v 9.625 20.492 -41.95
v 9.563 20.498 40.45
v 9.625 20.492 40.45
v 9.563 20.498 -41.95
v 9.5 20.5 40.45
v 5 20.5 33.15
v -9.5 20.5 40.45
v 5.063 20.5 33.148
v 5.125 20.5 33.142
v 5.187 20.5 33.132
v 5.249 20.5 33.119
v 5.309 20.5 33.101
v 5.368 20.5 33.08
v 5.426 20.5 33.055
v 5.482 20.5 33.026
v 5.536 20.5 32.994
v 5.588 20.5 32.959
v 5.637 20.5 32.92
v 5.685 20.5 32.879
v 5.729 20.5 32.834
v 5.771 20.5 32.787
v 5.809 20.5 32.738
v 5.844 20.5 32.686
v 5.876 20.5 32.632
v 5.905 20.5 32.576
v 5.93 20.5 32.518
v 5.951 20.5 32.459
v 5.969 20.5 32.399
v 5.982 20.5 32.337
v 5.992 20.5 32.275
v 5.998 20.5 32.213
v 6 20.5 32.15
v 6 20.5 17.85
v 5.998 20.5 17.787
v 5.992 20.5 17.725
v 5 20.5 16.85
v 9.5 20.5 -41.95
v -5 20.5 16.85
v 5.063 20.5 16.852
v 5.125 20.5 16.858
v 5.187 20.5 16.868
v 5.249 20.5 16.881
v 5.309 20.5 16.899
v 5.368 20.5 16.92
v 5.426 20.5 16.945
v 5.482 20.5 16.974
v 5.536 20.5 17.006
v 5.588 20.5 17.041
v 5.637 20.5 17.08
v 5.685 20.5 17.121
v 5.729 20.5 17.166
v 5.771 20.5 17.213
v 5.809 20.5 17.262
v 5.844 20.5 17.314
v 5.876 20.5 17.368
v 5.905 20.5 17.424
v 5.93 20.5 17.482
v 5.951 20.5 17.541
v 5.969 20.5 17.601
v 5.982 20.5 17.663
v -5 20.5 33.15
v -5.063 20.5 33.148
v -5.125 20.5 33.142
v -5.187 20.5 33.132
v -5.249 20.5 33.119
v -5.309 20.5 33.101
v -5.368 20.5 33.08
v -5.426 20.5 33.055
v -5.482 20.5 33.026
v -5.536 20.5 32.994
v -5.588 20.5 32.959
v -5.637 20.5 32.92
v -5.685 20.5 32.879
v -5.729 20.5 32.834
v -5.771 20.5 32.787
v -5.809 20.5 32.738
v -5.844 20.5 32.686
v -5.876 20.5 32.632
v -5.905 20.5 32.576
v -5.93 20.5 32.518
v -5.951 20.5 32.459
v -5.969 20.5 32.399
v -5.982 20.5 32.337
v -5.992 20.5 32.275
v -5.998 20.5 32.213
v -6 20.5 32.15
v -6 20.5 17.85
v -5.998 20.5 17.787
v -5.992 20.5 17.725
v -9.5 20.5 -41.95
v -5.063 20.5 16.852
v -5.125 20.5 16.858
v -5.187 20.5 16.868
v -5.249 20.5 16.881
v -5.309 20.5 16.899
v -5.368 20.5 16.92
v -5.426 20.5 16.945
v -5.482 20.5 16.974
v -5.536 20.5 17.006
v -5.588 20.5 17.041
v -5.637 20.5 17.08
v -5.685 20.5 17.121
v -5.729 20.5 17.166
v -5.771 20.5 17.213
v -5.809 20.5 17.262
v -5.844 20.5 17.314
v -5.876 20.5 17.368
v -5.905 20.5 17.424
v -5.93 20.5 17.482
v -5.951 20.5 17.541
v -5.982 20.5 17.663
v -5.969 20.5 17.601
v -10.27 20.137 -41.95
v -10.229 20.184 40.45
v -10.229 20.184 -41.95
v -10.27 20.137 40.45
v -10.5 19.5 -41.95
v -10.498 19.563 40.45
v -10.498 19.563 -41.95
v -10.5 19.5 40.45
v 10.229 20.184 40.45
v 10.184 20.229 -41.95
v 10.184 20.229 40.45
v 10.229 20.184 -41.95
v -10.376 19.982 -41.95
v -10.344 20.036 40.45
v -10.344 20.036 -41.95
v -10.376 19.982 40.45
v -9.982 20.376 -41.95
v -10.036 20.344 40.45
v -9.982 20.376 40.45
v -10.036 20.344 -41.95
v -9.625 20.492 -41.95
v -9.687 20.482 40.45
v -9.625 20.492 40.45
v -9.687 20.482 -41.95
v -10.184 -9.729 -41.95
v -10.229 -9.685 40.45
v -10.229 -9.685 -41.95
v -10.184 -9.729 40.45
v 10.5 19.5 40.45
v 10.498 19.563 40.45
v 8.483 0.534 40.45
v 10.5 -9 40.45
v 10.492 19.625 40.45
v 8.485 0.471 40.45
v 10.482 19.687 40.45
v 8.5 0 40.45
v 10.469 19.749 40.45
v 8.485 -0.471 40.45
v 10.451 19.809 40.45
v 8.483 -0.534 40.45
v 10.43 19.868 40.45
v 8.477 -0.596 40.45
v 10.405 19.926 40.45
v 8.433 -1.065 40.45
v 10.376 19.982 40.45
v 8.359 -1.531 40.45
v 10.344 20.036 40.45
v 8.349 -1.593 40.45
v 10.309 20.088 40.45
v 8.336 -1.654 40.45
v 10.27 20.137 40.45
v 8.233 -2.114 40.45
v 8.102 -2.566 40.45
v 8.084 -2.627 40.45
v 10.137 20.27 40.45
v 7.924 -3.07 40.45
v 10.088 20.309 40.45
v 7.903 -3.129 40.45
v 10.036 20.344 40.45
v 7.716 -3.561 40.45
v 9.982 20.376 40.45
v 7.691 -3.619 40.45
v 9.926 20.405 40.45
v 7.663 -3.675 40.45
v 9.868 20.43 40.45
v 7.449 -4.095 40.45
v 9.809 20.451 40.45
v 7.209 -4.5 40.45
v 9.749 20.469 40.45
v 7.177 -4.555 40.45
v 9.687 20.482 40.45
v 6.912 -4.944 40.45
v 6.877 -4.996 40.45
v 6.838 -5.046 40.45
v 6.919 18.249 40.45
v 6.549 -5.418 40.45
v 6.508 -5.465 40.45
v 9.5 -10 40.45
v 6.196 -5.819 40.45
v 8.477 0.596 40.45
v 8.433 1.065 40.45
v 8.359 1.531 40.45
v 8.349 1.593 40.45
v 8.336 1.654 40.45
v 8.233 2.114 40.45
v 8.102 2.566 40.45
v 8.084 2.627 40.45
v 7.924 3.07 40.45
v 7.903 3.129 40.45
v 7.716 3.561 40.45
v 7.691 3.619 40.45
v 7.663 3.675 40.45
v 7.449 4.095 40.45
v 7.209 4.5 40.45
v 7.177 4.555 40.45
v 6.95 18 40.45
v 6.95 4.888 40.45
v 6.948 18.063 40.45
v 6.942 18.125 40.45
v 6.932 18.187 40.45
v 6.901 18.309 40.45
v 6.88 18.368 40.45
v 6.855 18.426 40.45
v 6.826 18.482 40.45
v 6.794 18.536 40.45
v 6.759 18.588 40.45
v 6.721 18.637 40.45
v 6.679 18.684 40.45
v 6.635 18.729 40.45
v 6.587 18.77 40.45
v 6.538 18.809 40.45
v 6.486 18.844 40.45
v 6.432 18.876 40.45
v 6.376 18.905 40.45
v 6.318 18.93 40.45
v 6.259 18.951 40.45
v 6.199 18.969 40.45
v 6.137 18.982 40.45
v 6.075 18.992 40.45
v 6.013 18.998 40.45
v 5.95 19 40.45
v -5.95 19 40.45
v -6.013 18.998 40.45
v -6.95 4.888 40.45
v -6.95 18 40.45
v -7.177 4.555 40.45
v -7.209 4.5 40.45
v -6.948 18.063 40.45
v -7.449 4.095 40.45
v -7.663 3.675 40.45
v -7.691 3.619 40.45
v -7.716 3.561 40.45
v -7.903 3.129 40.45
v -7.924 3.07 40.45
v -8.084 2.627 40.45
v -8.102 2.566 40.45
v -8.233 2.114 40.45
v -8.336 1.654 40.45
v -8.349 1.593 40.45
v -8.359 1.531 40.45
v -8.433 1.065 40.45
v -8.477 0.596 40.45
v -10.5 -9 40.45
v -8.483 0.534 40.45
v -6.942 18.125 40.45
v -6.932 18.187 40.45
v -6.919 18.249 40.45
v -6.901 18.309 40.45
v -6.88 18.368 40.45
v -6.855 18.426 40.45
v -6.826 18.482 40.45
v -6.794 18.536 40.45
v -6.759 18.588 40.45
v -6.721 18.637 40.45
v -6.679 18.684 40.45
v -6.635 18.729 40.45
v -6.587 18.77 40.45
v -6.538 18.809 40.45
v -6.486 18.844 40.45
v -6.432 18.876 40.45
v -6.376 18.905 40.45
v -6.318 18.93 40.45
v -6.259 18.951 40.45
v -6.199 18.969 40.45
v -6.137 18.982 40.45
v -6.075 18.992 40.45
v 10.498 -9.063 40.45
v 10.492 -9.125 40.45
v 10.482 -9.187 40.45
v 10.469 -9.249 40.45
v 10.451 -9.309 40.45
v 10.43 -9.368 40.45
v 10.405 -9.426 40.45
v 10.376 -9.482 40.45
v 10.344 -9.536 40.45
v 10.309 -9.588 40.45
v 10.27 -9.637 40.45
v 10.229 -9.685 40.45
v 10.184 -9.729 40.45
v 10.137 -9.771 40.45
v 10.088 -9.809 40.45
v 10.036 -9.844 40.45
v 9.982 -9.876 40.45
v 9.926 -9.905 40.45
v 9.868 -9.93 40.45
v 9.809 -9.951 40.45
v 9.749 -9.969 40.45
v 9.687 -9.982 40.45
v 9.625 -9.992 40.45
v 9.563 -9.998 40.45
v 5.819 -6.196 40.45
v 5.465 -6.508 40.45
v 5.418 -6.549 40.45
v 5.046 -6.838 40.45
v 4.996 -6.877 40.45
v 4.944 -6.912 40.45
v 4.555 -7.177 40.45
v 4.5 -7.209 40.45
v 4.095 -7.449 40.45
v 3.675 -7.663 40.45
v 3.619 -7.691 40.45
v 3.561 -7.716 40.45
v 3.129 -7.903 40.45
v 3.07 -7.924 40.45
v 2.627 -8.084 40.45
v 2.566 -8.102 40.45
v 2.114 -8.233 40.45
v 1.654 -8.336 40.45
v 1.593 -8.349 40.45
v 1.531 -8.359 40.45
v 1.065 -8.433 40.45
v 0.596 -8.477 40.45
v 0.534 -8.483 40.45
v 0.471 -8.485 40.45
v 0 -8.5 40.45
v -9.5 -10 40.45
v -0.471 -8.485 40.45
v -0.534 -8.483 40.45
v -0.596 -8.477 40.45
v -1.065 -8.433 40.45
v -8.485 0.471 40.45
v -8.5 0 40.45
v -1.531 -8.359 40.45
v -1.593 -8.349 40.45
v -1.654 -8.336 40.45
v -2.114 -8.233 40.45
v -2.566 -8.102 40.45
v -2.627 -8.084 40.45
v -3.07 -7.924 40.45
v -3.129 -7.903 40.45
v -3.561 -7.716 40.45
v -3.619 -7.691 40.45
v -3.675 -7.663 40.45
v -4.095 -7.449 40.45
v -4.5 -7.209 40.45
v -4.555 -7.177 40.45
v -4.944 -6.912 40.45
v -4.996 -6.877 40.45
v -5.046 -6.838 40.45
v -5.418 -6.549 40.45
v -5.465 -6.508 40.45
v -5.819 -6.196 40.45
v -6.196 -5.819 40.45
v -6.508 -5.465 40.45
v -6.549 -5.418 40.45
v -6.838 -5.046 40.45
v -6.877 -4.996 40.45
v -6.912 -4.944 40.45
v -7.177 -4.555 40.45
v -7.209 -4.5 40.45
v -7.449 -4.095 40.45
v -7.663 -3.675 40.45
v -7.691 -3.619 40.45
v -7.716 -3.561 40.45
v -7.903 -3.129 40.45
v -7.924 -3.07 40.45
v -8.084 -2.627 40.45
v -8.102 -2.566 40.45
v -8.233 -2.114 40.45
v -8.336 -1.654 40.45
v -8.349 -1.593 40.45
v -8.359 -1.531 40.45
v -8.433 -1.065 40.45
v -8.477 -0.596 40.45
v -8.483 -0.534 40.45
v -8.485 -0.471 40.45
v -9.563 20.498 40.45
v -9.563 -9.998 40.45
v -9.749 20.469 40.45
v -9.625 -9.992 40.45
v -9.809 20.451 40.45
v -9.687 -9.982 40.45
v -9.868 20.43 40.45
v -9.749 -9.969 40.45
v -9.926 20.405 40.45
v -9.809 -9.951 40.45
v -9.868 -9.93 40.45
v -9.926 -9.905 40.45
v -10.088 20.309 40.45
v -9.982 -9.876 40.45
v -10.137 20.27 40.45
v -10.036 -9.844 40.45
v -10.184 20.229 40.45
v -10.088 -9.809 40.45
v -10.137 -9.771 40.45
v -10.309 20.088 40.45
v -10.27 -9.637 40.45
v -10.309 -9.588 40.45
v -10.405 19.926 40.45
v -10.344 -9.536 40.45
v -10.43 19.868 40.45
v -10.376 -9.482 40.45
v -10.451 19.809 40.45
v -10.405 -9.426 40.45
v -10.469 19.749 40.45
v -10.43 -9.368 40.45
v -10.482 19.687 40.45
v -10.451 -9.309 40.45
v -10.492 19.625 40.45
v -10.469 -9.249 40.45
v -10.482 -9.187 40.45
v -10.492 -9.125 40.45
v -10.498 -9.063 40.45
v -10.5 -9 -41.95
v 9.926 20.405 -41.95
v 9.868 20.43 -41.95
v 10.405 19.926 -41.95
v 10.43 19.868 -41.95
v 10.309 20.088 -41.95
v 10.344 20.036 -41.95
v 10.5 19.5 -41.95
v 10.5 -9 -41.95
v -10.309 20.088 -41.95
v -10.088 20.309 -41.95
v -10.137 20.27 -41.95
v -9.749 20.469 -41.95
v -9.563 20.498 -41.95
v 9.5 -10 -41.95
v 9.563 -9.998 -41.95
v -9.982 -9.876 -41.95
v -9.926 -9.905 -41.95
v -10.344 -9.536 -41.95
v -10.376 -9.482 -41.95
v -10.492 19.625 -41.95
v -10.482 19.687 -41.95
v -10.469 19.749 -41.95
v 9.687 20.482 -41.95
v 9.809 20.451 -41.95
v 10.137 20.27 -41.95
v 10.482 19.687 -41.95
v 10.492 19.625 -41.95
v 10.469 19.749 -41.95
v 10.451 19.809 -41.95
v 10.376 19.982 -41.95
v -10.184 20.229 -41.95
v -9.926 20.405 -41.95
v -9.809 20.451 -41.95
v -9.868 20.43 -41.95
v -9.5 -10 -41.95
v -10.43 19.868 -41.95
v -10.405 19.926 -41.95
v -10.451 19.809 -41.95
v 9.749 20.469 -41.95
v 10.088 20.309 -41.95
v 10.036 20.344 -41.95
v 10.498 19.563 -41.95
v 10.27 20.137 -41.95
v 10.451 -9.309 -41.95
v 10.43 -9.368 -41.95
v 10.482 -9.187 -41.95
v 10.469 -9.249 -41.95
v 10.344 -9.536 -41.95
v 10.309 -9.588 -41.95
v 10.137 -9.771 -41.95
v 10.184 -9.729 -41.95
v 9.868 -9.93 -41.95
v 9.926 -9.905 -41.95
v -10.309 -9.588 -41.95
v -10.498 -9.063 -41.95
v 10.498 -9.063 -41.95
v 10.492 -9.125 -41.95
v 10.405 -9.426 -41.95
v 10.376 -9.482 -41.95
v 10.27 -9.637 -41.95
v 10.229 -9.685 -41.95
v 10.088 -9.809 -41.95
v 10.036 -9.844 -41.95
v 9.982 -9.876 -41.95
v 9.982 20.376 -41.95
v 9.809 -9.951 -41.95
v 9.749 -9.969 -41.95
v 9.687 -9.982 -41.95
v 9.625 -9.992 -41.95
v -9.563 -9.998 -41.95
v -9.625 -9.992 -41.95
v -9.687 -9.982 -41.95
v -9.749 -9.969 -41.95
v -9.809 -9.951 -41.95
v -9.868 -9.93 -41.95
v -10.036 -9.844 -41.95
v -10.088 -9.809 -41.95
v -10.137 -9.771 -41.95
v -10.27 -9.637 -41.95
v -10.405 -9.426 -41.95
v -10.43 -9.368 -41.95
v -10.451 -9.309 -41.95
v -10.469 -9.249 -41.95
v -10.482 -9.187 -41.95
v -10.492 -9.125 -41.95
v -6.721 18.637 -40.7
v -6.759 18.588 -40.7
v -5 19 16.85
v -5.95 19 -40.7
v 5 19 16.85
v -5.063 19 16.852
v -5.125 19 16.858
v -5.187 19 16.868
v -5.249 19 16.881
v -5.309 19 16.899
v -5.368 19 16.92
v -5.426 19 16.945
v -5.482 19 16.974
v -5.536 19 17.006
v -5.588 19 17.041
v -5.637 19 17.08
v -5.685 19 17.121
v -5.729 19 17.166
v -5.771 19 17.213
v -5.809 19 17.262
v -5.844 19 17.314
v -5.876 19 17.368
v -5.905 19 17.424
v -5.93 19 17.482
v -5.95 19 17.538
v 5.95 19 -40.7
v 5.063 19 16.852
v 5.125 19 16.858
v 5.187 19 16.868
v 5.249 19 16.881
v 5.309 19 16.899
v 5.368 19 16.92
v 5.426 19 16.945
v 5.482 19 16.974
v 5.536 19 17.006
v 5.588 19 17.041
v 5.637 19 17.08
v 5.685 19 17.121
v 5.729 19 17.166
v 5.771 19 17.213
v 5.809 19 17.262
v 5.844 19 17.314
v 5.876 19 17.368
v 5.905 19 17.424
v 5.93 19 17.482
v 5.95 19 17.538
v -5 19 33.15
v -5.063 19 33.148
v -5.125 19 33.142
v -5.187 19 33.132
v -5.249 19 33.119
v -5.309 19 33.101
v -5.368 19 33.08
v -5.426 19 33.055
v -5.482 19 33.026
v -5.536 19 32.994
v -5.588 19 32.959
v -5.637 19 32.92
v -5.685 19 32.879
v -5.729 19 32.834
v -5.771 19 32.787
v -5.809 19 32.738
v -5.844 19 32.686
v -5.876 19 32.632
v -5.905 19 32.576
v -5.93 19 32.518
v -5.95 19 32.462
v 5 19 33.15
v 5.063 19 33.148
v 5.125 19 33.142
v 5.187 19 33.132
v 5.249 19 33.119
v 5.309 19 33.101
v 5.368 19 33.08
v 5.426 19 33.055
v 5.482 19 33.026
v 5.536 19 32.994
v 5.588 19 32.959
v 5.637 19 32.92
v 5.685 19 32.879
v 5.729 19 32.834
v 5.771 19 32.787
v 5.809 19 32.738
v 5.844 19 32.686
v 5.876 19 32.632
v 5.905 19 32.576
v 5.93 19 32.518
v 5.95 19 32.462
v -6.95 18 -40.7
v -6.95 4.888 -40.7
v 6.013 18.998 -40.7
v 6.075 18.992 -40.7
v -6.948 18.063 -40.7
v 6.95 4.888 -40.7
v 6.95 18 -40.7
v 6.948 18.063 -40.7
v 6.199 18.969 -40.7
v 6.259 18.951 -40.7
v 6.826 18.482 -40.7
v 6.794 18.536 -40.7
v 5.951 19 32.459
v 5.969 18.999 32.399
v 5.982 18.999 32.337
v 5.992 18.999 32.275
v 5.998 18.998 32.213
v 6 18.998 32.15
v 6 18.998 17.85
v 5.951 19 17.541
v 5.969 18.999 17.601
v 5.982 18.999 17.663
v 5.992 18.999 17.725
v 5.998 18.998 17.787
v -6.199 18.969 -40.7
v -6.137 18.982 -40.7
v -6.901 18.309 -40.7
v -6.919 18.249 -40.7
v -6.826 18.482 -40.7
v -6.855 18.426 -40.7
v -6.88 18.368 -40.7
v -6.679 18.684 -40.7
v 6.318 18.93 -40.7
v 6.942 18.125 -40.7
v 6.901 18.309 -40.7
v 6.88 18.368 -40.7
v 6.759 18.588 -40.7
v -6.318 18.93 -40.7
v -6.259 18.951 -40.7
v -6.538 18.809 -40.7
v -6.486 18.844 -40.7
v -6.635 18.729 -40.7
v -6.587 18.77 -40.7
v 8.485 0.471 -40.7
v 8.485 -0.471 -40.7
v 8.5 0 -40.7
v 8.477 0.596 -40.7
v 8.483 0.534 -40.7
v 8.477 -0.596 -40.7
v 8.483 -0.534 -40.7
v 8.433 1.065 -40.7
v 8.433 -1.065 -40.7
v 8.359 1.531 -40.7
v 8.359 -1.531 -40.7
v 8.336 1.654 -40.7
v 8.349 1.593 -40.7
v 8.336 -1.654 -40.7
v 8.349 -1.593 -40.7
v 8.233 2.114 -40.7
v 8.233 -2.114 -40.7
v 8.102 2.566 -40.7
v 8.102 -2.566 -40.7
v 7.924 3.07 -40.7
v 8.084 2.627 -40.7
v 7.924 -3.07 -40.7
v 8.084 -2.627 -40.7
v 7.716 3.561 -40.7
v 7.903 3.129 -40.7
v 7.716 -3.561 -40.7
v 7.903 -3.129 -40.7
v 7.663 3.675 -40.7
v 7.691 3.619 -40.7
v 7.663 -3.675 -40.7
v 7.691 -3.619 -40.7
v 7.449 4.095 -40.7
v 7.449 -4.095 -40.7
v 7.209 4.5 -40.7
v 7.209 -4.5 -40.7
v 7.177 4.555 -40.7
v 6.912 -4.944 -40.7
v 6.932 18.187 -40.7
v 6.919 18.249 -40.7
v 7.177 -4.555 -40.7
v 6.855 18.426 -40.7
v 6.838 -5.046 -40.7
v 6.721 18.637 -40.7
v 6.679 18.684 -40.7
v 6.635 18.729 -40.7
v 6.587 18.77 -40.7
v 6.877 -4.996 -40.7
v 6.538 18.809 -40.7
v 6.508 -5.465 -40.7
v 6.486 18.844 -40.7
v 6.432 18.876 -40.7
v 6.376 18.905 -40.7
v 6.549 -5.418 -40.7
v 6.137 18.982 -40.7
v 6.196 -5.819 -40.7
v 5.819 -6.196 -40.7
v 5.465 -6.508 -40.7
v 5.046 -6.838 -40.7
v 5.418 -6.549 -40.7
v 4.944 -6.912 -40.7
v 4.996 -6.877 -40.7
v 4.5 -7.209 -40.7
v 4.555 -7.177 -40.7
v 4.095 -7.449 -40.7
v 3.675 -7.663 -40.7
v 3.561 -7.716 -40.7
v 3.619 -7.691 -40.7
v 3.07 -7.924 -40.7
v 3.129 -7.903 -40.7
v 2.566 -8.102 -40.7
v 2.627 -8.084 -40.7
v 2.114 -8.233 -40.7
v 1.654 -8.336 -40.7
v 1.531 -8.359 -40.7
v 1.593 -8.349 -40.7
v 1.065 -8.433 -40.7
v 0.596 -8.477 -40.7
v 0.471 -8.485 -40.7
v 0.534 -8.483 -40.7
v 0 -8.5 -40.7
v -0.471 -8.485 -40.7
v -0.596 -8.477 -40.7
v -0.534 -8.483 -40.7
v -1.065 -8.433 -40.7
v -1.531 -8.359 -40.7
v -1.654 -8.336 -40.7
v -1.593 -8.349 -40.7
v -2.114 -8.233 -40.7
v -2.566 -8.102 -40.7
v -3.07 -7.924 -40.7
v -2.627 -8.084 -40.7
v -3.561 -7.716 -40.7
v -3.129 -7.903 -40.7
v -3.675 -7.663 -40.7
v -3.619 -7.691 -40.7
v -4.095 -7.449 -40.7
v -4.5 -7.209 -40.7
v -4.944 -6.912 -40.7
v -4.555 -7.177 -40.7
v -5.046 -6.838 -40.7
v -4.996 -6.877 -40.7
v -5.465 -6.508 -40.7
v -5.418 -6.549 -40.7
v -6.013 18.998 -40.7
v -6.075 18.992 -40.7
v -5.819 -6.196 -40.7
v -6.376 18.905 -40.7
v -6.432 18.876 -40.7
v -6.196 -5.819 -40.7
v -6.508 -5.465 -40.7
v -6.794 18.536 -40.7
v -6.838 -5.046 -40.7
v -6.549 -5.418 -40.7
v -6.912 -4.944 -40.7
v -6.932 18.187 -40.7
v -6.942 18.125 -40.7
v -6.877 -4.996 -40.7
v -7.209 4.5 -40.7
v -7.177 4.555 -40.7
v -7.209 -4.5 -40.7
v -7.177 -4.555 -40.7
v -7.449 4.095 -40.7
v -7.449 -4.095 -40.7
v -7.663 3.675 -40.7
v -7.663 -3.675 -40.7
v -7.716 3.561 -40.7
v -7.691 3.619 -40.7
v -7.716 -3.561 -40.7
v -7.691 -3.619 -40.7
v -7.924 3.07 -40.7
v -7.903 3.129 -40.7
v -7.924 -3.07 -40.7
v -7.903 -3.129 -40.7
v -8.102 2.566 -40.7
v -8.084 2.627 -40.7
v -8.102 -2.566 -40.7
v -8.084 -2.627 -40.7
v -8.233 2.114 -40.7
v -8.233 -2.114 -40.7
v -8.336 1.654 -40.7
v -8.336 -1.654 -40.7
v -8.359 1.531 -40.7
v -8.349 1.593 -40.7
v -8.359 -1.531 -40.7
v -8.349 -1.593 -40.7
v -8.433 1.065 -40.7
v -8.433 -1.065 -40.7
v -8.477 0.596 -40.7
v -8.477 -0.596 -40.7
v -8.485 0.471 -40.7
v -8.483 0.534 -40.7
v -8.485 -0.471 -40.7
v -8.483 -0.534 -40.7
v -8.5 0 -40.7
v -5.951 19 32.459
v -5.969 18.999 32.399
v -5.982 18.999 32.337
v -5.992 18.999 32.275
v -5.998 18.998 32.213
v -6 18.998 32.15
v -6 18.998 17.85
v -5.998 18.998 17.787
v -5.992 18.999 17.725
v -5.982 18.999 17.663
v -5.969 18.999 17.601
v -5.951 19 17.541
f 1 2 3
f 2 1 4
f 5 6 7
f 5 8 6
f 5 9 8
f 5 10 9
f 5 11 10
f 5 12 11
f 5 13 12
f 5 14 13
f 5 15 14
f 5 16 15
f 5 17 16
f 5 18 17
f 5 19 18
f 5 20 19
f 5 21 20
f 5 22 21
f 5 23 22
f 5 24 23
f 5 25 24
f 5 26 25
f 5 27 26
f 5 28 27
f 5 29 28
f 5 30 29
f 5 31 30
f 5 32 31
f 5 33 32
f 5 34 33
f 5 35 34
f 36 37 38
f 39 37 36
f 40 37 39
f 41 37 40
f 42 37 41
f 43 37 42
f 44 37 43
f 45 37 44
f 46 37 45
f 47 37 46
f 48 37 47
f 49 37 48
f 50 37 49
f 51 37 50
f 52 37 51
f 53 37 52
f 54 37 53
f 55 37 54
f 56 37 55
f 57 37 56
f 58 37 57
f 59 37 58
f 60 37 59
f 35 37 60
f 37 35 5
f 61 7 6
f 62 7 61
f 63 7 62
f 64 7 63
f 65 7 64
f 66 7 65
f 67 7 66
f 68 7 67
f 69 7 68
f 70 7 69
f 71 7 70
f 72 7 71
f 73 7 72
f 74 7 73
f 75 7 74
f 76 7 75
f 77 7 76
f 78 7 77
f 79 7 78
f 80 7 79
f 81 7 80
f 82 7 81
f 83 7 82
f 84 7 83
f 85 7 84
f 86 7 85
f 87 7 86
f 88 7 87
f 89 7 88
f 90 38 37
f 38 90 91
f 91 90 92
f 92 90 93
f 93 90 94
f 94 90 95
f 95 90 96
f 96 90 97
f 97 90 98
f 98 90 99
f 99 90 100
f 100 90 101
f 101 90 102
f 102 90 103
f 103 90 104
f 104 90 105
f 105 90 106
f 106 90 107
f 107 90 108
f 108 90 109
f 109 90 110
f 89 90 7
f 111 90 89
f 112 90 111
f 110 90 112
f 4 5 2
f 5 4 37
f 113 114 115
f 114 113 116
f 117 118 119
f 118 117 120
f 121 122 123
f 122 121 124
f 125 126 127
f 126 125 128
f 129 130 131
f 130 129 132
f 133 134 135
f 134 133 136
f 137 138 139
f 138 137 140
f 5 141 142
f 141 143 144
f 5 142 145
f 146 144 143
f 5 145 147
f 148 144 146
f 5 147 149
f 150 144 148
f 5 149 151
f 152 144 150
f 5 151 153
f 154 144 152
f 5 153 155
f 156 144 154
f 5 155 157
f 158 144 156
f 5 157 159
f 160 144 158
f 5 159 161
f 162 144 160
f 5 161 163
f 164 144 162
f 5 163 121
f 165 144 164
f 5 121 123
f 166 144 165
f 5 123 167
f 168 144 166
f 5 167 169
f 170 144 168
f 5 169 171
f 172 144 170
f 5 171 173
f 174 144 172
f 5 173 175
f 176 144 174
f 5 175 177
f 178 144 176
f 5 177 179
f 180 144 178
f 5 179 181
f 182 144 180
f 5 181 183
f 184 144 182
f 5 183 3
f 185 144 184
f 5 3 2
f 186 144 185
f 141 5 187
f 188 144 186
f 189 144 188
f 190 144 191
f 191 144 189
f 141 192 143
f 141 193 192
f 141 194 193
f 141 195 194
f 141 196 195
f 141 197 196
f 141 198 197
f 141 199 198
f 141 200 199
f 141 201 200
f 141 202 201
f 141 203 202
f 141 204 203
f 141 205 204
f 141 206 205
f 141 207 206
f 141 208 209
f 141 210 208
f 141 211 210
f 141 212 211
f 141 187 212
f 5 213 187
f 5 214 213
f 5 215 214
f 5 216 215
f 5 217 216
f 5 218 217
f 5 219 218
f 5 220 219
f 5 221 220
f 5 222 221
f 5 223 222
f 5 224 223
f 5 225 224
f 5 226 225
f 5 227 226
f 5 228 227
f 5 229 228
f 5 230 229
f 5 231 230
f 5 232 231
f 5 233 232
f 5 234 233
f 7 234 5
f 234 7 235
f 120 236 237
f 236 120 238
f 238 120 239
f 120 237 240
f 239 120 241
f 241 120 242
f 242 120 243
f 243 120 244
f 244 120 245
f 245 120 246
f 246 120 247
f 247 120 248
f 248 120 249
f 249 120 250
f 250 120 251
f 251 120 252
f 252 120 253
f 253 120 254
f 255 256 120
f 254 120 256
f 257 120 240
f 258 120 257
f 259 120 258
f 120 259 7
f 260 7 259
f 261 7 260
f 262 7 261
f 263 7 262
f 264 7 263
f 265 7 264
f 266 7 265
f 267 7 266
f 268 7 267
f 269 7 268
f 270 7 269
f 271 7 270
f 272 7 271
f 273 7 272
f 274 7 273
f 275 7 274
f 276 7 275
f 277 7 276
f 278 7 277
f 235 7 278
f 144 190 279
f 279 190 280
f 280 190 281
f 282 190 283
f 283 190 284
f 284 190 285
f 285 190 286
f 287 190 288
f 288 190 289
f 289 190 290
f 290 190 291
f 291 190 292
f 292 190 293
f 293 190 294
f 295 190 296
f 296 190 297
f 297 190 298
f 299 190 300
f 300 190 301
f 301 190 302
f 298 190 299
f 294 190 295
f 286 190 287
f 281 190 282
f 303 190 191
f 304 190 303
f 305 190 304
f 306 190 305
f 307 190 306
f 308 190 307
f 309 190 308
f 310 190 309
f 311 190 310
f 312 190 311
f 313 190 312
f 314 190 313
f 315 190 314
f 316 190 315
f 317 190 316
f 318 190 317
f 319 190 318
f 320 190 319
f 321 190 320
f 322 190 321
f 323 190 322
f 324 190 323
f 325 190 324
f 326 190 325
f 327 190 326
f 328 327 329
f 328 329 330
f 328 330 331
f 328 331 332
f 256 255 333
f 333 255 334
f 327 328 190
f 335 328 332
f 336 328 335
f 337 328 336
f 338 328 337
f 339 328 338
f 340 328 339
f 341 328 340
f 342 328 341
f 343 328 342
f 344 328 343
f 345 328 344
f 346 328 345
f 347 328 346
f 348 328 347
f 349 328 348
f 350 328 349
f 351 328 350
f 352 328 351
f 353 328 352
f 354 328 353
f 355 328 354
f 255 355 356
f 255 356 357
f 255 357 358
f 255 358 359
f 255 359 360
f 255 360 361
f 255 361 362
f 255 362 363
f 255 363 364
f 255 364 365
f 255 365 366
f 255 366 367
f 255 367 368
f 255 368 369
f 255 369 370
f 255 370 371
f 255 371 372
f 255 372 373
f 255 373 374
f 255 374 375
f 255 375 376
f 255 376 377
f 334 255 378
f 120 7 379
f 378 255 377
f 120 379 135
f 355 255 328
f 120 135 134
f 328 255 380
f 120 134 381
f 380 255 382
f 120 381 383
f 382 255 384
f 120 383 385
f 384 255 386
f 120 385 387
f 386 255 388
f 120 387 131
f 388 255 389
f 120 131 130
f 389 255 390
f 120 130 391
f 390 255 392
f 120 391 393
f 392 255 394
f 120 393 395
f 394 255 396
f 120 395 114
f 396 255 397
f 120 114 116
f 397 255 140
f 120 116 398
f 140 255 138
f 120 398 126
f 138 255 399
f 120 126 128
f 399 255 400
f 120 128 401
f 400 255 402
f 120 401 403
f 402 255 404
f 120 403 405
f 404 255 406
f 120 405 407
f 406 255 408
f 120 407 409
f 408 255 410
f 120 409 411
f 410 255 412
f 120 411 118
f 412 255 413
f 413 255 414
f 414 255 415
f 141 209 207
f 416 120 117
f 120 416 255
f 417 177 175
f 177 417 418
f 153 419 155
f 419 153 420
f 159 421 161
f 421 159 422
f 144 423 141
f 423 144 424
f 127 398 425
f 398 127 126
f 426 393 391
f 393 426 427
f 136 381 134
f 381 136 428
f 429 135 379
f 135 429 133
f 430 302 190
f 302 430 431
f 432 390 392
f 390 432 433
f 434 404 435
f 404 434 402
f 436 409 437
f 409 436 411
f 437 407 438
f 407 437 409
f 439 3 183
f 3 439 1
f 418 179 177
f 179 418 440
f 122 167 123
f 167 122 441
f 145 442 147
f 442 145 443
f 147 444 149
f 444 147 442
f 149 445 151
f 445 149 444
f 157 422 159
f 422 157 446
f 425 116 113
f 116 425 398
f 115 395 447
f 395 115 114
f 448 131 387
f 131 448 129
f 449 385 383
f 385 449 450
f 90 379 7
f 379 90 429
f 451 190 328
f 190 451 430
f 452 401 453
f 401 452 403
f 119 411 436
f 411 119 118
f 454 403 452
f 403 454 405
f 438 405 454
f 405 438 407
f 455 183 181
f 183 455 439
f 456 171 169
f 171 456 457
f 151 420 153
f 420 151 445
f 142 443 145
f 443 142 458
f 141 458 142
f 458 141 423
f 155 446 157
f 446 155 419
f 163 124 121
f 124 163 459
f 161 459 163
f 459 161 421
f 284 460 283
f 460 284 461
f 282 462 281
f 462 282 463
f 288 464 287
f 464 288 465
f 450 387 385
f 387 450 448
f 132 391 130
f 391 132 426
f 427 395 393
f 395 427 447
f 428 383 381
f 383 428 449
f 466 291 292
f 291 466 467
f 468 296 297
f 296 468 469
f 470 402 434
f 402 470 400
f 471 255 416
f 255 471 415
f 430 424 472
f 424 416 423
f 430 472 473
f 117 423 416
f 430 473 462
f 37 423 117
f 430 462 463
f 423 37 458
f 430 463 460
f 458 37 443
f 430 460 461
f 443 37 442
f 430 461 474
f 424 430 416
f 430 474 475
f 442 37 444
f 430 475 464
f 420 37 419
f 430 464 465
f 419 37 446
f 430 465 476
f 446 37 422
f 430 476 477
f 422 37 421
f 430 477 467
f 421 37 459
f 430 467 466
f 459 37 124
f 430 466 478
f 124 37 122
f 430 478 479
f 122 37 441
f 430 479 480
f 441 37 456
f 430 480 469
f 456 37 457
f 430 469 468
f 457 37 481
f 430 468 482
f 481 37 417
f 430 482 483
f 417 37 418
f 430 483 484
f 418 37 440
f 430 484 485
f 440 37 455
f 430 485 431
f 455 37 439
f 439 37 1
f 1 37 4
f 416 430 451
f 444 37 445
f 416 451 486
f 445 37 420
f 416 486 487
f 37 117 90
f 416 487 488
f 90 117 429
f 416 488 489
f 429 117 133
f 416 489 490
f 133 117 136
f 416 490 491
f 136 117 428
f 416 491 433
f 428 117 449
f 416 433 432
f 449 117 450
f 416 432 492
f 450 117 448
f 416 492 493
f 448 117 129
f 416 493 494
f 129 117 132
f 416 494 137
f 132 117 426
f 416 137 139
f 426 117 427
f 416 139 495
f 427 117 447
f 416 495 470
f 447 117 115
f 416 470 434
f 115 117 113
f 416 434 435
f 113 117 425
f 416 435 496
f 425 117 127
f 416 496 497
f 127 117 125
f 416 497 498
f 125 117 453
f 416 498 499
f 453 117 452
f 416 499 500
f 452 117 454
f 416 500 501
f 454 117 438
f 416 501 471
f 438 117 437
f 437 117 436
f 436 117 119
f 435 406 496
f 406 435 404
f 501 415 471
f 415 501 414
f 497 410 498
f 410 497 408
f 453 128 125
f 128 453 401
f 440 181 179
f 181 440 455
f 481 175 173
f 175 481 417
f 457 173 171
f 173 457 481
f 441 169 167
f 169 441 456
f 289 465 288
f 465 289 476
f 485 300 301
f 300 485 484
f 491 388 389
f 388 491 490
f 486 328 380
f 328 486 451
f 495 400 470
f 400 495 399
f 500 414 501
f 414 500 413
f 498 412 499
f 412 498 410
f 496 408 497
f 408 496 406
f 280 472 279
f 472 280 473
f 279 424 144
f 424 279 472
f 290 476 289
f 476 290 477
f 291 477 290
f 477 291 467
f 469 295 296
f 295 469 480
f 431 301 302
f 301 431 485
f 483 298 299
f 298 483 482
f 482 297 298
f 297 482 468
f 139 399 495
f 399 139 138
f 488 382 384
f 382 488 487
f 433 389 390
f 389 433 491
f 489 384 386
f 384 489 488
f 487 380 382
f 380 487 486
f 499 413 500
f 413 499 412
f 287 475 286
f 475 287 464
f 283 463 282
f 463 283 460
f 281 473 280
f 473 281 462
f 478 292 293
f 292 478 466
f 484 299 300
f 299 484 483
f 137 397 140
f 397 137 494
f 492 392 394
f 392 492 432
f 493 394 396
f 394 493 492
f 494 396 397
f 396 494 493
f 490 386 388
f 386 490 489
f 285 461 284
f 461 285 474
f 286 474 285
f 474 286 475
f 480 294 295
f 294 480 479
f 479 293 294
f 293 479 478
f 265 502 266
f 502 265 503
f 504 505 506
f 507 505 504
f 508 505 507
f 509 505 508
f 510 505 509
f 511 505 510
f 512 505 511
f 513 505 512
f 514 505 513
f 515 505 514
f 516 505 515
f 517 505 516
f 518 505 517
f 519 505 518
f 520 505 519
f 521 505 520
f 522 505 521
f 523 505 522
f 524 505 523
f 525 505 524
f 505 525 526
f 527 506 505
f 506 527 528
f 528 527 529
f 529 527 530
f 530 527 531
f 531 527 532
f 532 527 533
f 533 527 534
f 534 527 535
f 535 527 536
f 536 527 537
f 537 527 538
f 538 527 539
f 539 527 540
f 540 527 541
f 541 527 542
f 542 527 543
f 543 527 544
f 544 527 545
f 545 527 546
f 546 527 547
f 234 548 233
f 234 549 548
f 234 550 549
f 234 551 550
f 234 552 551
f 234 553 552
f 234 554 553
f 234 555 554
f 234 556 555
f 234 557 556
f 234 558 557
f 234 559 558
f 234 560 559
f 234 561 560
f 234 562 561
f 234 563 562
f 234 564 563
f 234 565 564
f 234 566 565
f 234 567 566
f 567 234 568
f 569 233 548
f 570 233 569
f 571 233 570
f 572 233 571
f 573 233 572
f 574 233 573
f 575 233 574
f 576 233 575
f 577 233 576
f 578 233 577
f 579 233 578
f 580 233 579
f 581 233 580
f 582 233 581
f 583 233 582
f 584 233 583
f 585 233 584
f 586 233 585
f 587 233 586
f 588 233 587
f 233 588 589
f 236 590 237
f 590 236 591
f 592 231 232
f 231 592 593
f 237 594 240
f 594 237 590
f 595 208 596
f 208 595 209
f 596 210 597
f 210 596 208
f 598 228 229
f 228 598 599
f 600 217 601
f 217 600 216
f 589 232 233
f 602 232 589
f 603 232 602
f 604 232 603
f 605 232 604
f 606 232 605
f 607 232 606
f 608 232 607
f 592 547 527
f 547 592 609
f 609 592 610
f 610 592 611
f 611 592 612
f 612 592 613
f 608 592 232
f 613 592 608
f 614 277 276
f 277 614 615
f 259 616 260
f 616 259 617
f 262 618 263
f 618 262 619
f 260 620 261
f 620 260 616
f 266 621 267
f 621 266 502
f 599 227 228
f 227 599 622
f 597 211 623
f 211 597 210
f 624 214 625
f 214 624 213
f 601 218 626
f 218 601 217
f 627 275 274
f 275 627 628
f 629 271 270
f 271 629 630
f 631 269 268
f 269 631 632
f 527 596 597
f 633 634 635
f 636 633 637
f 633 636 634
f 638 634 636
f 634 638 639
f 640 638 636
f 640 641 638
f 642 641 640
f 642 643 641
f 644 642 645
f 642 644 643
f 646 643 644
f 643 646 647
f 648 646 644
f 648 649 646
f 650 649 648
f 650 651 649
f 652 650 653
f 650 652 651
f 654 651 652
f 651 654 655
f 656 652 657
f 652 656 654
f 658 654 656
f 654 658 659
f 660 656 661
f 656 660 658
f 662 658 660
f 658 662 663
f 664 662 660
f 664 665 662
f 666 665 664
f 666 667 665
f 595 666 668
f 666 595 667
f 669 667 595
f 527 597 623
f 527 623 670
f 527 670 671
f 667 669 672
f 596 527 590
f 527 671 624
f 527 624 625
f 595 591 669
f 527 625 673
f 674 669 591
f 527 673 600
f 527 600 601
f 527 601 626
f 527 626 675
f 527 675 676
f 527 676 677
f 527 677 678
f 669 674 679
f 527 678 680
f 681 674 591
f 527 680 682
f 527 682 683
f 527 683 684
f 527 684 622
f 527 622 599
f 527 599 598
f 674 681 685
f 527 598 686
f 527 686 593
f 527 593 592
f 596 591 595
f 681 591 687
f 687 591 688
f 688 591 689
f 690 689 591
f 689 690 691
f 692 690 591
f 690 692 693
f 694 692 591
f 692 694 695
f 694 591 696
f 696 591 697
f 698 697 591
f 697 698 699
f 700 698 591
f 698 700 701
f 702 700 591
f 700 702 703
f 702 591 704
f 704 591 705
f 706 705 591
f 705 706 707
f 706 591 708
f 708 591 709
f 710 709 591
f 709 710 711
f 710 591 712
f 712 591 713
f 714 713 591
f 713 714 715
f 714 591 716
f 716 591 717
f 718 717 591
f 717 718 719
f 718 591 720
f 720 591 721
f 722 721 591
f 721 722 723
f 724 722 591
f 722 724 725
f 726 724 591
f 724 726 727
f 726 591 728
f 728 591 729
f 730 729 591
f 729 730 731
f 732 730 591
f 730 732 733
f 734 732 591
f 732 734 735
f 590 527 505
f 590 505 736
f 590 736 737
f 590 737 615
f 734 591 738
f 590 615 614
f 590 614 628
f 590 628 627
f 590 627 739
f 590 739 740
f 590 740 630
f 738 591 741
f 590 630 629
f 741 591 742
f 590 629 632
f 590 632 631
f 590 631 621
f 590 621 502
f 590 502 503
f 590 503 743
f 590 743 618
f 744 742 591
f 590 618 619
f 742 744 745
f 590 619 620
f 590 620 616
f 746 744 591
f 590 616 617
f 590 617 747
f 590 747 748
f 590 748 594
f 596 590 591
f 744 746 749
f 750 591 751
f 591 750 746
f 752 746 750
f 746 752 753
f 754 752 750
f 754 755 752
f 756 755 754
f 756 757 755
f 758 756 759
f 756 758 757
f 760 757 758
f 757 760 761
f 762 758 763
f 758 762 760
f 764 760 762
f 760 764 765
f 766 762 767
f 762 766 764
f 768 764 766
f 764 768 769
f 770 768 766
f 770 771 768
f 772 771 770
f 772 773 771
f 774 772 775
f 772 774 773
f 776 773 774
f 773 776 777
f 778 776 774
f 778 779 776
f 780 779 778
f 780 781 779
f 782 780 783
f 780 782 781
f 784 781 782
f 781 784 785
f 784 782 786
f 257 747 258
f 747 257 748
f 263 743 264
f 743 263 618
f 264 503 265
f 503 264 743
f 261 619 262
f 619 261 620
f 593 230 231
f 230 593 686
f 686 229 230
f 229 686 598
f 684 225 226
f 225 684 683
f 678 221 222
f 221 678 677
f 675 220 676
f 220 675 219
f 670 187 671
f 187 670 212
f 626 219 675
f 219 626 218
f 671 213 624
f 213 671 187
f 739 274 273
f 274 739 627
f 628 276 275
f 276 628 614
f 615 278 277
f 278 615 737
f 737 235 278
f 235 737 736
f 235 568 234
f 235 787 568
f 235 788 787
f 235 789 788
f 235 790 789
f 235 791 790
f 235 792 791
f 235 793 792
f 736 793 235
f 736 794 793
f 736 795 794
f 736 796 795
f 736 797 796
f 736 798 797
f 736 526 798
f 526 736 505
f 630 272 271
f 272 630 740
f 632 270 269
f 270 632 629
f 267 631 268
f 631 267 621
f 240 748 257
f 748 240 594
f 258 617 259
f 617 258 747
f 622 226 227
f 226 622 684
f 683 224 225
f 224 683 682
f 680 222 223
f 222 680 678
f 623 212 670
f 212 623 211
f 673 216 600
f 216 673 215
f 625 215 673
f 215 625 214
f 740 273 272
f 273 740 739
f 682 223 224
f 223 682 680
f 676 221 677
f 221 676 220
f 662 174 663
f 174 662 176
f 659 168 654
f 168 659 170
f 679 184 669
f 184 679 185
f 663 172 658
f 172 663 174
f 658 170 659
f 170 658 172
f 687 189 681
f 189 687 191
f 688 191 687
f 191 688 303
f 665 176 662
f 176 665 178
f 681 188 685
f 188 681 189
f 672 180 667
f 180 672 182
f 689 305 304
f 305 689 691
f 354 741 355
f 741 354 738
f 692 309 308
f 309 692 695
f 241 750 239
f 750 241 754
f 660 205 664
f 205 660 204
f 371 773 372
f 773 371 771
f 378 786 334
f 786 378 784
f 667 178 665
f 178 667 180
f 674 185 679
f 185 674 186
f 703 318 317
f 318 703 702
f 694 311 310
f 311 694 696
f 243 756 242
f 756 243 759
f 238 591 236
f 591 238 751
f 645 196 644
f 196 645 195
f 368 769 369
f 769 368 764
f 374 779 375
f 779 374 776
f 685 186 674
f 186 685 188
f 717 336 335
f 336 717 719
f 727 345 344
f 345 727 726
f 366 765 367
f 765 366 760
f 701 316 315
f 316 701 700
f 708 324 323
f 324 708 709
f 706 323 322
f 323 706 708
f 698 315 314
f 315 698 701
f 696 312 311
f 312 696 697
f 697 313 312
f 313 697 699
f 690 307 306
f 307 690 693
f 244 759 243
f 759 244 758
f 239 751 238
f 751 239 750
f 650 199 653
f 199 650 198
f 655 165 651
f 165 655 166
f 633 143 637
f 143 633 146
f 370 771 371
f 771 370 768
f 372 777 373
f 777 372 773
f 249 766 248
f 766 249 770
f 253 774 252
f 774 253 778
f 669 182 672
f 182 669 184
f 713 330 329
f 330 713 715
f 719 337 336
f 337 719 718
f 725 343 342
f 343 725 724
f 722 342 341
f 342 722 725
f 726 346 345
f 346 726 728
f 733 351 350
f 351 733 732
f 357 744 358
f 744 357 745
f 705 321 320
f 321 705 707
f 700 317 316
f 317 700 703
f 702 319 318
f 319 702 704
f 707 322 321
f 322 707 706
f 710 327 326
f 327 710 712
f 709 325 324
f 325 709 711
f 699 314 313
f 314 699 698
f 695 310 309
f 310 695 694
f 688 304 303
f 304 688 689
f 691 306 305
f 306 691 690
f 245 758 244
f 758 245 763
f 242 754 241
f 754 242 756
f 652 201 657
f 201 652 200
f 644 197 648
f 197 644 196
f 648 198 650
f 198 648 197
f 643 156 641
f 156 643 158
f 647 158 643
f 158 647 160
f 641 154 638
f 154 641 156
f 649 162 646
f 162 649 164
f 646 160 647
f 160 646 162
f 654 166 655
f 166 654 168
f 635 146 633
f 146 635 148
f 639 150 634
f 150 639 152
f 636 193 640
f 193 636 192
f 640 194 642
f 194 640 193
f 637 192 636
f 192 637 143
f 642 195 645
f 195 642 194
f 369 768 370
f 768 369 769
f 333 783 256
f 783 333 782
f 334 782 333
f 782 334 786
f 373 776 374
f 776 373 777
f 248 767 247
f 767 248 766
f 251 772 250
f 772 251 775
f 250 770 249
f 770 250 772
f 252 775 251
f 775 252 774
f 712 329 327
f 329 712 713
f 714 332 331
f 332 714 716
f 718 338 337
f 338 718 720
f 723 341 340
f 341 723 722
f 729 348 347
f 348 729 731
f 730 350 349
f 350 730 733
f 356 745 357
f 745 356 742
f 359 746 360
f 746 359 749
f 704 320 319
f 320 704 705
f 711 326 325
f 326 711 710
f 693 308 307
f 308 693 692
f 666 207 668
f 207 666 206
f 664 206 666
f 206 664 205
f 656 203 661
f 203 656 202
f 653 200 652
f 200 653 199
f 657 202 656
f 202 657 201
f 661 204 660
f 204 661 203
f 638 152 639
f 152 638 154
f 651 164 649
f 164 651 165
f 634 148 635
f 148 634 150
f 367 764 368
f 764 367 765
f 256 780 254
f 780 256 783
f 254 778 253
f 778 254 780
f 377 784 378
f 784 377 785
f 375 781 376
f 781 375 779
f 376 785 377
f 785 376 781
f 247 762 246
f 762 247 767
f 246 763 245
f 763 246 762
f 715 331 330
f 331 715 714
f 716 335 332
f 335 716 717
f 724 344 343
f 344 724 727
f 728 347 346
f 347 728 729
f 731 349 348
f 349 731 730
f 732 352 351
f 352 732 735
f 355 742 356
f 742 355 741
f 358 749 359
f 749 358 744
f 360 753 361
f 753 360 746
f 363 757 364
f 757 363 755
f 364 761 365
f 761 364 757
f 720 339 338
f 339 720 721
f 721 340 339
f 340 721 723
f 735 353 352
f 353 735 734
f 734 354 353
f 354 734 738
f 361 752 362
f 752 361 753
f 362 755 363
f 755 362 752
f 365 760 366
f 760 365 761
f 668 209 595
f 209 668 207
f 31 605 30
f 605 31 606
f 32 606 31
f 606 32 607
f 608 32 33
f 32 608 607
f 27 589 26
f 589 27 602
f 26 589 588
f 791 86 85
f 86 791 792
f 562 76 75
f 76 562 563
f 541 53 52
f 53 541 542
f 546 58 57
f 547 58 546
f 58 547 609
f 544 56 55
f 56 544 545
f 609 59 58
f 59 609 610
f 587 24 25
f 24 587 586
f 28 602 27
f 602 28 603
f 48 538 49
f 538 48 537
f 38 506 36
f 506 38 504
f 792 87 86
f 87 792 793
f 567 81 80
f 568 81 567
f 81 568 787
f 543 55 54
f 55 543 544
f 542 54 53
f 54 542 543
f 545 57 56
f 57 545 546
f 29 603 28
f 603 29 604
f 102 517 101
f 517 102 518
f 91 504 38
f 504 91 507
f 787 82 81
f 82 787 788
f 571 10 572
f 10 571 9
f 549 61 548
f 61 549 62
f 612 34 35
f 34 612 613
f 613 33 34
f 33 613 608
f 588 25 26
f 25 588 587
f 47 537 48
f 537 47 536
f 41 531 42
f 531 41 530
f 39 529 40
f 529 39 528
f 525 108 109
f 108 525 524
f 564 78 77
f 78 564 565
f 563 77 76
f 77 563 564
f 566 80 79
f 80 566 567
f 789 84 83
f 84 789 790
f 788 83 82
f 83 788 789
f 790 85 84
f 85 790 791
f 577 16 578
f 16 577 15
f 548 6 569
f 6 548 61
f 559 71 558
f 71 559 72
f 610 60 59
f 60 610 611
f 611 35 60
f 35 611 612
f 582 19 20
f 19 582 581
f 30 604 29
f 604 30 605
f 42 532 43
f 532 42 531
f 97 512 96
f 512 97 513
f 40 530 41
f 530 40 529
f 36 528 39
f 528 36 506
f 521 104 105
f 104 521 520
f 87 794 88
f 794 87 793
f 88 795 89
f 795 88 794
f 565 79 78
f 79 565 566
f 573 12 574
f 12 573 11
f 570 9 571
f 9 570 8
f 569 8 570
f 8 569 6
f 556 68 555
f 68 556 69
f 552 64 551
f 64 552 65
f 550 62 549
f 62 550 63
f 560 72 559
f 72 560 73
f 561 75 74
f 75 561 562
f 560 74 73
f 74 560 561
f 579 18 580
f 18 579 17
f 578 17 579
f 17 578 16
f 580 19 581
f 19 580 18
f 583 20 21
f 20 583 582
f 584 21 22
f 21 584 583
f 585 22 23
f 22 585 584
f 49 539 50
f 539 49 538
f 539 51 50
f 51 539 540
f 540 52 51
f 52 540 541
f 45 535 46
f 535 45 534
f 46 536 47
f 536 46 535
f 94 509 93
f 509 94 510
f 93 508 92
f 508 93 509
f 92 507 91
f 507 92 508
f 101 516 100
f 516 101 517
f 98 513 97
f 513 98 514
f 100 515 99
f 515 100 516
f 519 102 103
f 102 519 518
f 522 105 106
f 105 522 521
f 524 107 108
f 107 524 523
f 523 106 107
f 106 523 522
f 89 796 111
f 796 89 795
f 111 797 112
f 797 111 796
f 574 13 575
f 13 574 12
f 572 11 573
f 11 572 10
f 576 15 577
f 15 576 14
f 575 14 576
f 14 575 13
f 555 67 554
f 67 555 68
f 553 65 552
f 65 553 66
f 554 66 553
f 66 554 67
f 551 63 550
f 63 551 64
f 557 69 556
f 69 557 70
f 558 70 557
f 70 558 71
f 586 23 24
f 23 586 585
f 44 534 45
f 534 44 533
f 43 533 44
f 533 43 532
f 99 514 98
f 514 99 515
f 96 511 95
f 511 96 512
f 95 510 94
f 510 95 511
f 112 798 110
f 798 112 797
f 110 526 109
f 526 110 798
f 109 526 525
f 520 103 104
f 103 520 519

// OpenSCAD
//measurements
height = 80.4;
width = 25;
circumOfCartHolder = 15;
lengthOfCube = 11.9;
widthOfWindow = 10;
heightOfWindow = 14.3;
$fn = 100;

difference()
{
    buffer = 2;
    minkowski()
    {
        translate([0,5.25,-.75])
            cube([circumOfCartHolder +4,width +3.5,height +1 ],center = true);
        
        cylinder( h = 1 , center = true);
    }

    minkowski()
    {
        union()
        {
            cylinder(r=circumOfCartHolder/2, h = height , center = true);
            translate([0,11,0])
                cube([lengthOfCube,14,height],center = true);
        }
        cylinder( h = 1 , center = true);

    }       
    //translate([0,-circumOfCartHolder/2,0])
    //    cube([1,width, 1]);
translate([0,15,25])
    minkowski()
    {

        cube([widthOfWindow,20,heightOfWindow],center =true);
        rotate([90,0,0])
            cylinder(r=1, h=  1,center= true );
    }
}
